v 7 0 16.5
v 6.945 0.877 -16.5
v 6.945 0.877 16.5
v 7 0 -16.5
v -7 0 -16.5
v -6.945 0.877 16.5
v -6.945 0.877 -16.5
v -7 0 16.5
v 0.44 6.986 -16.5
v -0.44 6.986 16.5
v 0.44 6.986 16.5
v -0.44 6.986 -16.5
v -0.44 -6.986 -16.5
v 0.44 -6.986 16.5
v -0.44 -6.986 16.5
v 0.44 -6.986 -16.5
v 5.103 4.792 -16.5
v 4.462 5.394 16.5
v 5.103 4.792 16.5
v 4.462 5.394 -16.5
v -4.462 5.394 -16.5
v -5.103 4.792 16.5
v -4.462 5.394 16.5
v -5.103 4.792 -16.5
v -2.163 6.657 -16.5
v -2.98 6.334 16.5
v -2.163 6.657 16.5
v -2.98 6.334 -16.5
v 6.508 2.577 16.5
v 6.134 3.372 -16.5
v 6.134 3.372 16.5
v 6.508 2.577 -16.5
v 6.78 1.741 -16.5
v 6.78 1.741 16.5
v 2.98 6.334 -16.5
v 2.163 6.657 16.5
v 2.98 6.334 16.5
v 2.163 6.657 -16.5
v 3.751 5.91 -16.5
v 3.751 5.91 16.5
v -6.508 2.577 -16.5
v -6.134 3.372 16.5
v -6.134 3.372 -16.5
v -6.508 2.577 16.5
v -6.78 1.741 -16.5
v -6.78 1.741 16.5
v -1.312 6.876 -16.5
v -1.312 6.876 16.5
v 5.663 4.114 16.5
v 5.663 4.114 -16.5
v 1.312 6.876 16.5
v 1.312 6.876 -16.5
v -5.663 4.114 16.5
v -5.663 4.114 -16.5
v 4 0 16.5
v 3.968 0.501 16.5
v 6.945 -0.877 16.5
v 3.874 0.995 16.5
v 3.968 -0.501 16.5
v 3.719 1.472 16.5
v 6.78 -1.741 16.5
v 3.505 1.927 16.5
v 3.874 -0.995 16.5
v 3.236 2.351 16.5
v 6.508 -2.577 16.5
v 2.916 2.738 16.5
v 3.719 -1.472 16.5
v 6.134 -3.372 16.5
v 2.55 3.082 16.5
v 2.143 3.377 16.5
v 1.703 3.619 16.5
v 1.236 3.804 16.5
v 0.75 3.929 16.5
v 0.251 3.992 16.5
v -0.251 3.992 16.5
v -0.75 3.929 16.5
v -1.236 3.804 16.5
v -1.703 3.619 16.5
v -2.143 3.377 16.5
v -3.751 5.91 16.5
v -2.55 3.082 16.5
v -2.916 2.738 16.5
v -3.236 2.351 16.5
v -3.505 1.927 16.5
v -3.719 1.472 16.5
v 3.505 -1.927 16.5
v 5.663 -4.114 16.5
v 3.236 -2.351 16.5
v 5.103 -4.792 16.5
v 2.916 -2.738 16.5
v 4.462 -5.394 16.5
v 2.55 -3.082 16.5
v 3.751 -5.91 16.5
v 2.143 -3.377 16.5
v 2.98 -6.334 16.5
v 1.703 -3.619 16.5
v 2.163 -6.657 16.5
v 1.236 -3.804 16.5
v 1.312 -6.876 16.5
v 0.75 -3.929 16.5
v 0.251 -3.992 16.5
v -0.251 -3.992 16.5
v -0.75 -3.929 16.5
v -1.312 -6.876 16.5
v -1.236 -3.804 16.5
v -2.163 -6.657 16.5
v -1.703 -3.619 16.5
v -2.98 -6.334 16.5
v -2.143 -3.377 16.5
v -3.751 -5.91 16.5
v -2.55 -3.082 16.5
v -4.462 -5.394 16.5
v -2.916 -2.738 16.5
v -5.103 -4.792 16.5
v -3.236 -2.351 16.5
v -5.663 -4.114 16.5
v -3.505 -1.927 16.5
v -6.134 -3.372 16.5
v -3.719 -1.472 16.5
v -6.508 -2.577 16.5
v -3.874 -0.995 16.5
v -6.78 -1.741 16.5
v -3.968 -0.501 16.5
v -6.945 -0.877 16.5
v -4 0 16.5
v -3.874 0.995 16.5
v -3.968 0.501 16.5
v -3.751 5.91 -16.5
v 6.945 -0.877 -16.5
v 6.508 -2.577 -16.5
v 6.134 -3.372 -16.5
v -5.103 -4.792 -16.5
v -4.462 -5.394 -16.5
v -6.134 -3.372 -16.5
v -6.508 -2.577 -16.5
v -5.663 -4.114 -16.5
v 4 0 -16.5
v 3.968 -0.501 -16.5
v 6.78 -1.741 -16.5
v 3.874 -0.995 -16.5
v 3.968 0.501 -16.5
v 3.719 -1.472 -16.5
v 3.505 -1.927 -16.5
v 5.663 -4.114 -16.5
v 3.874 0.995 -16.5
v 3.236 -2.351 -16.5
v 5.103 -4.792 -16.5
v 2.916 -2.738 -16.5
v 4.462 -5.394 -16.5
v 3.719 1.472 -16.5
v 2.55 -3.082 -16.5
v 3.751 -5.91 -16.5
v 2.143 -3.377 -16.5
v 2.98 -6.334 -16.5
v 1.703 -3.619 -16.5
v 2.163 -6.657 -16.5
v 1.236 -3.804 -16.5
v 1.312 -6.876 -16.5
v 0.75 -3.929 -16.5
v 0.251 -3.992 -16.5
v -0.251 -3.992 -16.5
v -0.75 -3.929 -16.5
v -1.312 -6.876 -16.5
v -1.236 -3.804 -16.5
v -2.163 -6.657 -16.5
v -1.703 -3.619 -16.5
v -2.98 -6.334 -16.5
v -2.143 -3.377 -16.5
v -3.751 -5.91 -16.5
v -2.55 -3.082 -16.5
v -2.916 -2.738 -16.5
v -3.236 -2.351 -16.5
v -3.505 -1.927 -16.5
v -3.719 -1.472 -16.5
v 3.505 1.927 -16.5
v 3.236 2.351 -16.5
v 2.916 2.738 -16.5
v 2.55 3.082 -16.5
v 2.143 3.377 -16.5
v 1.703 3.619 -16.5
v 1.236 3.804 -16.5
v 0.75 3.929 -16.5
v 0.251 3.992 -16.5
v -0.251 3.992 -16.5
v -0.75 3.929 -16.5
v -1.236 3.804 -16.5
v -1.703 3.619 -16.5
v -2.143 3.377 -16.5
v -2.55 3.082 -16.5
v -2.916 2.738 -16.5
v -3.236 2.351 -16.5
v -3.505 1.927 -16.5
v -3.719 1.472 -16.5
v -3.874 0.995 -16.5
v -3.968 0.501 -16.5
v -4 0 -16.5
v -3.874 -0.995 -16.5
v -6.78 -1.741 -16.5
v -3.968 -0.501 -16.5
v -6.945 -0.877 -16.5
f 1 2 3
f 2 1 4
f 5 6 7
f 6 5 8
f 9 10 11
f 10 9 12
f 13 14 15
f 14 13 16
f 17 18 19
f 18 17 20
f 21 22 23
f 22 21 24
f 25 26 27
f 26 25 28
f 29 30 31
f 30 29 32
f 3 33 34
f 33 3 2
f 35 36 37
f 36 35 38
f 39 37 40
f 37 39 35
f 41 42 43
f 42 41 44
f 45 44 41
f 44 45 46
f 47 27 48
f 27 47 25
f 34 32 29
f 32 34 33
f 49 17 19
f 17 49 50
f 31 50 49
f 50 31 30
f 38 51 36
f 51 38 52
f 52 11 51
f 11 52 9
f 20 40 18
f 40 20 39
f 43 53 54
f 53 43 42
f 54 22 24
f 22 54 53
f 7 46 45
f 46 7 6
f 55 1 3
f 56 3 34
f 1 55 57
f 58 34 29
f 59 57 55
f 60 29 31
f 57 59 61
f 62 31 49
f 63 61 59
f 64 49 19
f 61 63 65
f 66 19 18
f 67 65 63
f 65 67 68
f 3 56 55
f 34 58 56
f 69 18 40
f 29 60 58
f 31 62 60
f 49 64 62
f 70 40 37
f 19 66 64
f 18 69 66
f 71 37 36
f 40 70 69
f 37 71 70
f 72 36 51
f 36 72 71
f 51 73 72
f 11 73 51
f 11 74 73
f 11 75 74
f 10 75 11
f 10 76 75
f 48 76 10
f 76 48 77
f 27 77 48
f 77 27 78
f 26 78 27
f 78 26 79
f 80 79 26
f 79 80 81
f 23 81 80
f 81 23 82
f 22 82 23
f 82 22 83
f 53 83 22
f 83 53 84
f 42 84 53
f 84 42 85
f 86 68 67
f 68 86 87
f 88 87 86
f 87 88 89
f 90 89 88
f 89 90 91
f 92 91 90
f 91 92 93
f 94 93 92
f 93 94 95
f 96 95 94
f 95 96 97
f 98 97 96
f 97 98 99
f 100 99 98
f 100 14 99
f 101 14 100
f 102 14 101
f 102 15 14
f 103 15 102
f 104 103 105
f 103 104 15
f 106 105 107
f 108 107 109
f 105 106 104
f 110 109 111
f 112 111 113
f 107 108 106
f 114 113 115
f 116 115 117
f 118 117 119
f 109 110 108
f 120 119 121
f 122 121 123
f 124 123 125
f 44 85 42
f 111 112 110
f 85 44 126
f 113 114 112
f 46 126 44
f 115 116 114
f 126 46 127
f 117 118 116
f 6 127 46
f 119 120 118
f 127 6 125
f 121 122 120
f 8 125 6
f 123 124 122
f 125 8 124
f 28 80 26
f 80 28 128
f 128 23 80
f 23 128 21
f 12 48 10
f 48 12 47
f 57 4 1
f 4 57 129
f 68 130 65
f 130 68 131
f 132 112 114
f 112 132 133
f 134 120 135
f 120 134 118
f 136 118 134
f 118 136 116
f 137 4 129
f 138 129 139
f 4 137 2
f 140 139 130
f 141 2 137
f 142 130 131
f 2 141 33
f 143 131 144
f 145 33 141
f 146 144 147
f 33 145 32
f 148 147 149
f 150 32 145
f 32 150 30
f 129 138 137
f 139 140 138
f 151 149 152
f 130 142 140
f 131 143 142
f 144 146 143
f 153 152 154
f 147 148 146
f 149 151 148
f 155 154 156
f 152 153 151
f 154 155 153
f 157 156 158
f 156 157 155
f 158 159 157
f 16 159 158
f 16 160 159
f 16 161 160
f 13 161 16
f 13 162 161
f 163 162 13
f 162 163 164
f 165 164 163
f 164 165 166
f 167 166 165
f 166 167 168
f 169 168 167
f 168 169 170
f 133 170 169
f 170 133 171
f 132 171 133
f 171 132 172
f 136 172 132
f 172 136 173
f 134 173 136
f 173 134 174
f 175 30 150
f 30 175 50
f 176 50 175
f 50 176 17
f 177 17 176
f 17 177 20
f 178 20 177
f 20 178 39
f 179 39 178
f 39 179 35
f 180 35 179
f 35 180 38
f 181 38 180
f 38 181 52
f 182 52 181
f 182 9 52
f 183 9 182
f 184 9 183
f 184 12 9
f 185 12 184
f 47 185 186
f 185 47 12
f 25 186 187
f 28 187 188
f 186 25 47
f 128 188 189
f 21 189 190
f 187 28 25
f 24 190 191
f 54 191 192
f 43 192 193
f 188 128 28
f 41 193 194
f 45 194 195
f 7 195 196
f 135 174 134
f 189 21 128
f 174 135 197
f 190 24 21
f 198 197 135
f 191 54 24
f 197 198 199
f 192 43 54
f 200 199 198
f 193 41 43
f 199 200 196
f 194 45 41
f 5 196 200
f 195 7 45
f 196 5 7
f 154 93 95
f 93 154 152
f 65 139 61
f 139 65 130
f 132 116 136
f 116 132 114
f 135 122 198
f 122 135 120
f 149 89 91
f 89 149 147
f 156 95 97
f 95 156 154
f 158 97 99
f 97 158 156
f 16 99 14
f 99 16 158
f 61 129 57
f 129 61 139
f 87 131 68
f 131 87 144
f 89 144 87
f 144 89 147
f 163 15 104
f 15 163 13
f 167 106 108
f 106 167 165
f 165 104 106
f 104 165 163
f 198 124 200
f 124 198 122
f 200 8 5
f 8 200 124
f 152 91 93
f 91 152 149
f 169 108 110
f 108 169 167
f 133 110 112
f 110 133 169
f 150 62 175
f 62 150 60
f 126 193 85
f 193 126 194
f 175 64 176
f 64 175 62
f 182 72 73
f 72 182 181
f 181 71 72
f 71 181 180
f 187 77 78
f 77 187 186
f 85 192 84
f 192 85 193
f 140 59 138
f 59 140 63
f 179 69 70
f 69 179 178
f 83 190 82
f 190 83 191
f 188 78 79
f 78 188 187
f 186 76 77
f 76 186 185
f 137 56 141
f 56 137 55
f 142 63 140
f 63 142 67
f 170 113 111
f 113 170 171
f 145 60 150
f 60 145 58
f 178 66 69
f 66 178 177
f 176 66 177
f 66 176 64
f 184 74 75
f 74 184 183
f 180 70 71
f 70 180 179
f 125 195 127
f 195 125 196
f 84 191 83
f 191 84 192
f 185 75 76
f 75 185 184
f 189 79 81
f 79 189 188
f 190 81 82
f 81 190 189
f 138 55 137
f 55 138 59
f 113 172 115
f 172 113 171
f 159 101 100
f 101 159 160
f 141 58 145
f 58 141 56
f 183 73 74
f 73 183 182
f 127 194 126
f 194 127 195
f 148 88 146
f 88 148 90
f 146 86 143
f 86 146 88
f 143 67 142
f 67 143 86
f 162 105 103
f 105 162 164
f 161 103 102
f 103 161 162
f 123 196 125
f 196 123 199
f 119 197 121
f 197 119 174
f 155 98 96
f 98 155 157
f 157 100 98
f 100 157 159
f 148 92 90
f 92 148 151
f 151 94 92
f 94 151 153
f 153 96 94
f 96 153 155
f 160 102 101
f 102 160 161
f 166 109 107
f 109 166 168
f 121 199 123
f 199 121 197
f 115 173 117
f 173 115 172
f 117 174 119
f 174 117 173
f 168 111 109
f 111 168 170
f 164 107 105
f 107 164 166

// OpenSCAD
$fn = 50;


difference() {
	union() {
		translate(v = [0, 0, -16.5000000000]) {
			cylinder(h = 33, r = 7.0000000000);
		}
	}
	union() {
		translate(v = [0, 0, -100.0000000000]) {
			cylinder(h = 200, r = 4);
		}
	}
}
